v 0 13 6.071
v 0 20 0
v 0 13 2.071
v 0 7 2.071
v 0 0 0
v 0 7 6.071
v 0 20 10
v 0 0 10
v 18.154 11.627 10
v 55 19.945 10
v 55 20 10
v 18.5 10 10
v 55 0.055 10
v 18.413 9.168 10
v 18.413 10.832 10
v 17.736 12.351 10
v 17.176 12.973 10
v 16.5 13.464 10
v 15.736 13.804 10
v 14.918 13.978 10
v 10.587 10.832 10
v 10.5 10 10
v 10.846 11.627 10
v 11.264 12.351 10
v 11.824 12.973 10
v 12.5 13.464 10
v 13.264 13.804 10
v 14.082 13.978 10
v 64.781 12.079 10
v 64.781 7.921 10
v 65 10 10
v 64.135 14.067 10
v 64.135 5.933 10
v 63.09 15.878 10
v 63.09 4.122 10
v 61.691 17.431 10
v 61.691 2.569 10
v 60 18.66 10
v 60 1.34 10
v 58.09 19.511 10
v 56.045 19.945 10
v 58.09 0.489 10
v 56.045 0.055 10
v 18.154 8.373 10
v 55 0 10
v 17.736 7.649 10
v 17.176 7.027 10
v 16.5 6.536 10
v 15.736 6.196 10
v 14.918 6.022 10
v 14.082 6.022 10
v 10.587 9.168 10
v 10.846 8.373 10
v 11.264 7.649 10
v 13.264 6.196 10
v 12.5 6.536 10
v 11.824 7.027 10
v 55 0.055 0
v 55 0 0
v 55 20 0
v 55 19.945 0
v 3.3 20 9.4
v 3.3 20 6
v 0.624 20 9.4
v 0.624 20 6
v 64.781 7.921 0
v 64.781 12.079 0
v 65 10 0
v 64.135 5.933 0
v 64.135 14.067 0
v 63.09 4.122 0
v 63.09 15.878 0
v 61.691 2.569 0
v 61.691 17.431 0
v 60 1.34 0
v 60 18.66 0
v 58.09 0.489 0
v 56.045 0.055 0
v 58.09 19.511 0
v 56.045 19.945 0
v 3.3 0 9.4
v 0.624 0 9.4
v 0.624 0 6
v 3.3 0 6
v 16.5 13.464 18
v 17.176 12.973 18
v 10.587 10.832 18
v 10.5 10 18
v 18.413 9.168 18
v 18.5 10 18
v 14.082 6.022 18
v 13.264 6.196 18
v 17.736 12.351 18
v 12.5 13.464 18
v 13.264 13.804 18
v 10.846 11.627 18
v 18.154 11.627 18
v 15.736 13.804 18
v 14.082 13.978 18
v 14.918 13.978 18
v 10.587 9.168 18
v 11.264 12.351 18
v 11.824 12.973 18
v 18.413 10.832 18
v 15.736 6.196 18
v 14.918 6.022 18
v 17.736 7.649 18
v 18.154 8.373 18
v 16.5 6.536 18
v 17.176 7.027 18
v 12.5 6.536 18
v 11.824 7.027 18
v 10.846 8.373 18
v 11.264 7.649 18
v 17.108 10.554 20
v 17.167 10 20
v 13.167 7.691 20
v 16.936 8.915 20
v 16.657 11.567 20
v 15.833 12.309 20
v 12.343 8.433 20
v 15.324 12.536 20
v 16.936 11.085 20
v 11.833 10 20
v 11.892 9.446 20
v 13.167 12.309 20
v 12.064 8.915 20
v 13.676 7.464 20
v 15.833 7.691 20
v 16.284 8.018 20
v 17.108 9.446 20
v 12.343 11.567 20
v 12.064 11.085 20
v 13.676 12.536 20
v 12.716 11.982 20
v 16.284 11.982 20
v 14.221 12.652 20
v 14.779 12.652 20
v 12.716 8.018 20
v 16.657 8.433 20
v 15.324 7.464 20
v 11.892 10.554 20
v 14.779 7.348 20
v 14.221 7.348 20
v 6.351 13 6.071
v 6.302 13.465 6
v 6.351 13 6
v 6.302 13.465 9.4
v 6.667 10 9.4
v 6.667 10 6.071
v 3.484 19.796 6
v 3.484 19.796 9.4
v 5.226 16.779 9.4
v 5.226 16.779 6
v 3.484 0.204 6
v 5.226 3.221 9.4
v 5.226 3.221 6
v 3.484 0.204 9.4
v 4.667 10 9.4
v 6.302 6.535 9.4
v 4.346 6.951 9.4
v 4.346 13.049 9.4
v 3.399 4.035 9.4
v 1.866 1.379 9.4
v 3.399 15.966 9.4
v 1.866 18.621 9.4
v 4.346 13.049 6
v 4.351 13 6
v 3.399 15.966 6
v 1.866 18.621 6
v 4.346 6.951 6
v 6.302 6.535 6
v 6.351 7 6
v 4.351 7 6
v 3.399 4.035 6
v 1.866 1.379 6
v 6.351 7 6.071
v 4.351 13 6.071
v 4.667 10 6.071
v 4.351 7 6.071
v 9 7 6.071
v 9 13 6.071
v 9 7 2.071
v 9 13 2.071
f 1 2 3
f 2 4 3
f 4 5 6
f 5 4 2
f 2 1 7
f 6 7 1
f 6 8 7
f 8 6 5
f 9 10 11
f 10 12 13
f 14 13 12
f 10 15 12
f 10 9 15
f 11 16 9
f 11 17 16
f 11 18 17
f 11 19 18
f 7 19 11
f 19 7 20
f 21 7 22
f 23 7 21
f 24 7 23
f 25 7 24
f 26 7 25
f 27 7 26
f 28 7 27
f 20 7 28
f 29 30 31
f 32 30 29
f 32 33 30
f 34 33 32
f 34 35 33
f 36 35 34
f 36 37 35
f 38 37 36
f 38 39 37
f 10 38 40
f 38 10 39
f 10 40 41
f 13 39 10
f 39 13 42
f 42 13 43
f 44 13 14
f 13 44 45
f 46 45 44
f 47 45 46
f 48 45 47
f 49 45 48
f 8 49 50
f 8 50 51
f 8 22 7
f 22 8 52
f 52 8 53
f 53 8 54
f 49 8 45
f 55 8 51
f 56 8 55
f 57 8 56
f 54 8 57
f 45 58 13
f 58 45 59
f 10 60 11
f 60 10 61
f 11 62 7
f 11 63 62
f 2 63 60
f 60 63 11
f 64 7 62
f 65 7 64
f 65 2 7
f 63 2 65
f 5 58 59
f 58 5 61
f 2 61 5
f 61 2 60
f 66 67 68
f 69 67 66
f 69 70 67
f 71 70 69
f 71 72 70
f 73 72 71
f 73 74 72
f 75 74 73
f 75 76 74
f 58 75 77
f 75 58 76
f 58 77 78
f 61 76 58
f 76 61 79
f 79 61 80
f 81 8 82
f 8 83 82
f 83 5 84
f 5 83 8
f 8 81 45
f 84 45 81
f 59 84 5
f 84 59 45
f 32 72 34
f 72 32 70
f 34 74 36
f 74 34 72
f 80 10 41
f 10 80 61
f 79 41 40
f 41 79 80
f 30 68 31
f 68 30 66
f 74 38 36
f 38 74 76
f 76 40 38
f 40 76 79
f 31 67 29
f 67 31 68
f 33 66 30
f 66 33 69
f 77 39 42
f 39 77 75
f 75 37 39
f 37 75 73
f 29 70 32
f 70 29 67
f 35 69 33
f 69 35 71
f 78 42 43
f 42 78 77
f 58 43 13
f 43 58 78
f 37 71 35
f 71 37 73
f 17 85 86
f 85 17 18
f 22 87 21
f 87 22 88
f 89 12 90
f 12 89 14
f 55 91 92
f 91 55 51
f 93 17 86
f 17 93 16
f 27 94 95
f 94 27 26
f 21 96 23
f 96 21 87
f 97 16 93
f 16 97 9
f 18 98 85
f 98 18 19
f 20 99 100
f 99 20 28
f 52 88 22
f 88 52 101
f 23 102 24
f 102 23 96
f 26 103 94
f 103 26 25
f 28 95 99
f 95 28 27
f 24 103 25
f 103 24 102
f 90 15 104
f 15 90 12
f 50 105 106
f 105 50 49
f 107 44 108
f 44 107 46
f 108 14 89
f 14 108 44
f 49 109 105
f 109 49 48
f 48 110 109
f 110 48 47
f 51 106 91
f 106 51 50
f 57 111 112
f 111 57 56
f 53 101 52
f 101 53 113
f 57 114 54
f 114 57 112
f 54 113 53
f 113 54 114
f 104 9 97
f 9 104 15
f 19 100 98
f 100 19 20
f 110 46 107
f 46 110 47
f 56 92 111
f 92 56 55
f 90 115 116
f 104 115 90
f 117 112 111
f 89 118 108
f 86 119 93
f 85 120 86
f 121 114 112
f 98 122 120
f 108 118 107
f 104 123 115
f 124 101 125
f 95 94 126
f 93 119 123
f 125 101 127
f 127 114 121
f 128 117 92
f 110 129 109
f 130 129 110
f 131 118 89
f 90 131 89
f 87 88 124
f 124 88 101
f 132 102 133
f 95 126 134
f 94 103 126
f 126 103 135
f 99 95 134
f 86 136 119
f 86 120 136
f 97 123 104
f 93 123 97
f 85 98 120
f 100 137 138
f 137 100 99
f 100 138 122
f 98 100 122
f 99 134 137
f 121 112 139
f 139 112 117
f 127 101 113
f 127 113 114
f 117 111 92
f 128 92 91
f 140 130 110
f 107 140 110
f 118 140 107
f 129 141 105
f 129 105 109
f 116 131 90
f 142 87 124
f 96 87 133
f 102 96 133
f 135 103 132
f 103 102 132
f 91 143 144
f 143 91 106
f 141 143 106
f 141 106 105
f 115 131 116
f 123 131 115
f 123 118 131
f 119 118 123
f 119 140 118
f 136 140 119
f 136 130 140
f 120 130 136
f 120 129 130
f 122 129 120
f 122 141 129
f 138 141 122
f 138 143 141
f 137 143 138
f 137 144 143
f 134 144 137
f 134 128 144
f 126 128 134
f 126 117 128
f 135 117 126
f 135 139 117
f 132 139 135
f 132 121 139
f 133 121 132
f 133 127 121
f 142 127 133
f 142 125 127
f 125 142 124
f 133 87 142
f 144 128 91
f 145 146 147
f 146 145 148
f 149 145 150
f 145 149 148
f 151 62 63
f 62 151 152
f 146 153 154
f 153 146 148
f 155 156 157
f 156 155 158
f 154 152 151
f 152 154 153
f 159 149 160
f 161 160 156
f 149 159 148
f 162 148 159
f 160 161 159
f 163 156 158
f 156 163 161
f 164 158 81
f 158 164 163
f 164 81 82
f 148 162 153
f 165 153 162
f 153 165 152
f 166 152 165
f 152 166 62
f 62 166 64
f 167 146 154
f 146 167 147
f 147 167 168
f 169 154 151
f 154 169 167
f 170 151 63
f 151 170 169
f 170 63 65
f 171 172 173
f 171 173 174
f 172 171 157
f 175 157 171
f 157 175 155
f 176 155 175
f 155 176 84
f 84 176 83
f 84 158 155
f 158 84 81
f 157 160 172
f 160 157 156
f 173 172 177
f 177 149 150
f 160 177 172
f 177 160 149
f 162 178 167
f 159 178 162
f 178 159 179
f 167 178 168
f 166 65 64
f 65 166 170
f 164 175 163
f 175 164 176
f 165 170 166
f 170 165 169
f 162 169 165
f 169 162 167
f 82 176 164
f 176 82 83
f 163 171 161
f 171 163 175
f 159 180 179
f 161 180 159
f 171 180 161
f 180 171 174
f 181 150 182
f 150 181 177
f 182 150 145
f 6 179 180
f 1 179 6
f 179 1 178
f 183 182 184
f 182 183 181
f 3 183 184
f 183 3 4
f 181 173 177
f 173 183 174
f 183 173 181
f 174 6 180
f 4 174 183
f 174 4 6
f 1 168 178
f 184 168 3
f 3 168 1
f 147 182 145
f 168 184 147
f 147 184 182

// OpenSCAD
/* Spool holder for Monoprice Mini Delta (MPMD) 3D printer

    Author:  Tom Clupper
    Date: 4/11/2020
    License: Attribution-ShareAlike 4.0 International (https://creativecommons.org/licenses/by-sa/4.0)
    
    NOTES:
        - Print (1) part (it goes closest to the printer)
        - This can be printd on a stock MPMD
        - All dimensions in mm
        - No Supports needed
        - This part is strapped down with one cable tie: 2.54mm wide (0.1 inches) with
            at least 115mm (4.5 inches) of working length. The part number was Ty-Its UB140A-B,
            but any "18 lbs" 2.54mm wide cable tie will do
        - I did add more infill to the post locally using PrusaSlicer.
*/


CenterHeight = 14.5;
Height = 55;
Width = 20;
Thickness = 10;
BearingSupportDiameter = 8;
BearingSupportHeight = 8;
        
difference(){
    
    union(){
        // Main block
        cube([Height, Width, Thickness]);
        
        translate([Height, Width/2, 0]) cylinder(h=Thickness, r=Width/2, center=false, $fn=30);
        
        // Bearing support
        translate([CenterHeight, Width/2,Thickness]) cylinder(h=BearingSupportHeight, r=BearingSupportDiameter/2, center=false, $fn=30);
        translate([CenterHeight, Width/2,Thickness+BearingSupportHeight]) cylinder(h=2, r1=BearingSupportDiameter/2, r2=BearingSupportDiameter/3, center=false, $fn=30);   
        
    }
    
    union() {
        // cut-out for the tab
        translate([0,Width/2-3,Thickness/2.8-1.5]) cube([9,6,4]);
        
        // Cut-out for zip-tie
        translate([-Width/2, Width/2, Thickness-3.5-.5]) ziptie();
    }
}

module ziptie(){
    difference() {
        cylinder(h=3.4, r=Width/1.2, center=false, $fn=30);

        cylinder(h=3.4, r=Width/1.2-2, center=false, $fn=30);        
    }
}
